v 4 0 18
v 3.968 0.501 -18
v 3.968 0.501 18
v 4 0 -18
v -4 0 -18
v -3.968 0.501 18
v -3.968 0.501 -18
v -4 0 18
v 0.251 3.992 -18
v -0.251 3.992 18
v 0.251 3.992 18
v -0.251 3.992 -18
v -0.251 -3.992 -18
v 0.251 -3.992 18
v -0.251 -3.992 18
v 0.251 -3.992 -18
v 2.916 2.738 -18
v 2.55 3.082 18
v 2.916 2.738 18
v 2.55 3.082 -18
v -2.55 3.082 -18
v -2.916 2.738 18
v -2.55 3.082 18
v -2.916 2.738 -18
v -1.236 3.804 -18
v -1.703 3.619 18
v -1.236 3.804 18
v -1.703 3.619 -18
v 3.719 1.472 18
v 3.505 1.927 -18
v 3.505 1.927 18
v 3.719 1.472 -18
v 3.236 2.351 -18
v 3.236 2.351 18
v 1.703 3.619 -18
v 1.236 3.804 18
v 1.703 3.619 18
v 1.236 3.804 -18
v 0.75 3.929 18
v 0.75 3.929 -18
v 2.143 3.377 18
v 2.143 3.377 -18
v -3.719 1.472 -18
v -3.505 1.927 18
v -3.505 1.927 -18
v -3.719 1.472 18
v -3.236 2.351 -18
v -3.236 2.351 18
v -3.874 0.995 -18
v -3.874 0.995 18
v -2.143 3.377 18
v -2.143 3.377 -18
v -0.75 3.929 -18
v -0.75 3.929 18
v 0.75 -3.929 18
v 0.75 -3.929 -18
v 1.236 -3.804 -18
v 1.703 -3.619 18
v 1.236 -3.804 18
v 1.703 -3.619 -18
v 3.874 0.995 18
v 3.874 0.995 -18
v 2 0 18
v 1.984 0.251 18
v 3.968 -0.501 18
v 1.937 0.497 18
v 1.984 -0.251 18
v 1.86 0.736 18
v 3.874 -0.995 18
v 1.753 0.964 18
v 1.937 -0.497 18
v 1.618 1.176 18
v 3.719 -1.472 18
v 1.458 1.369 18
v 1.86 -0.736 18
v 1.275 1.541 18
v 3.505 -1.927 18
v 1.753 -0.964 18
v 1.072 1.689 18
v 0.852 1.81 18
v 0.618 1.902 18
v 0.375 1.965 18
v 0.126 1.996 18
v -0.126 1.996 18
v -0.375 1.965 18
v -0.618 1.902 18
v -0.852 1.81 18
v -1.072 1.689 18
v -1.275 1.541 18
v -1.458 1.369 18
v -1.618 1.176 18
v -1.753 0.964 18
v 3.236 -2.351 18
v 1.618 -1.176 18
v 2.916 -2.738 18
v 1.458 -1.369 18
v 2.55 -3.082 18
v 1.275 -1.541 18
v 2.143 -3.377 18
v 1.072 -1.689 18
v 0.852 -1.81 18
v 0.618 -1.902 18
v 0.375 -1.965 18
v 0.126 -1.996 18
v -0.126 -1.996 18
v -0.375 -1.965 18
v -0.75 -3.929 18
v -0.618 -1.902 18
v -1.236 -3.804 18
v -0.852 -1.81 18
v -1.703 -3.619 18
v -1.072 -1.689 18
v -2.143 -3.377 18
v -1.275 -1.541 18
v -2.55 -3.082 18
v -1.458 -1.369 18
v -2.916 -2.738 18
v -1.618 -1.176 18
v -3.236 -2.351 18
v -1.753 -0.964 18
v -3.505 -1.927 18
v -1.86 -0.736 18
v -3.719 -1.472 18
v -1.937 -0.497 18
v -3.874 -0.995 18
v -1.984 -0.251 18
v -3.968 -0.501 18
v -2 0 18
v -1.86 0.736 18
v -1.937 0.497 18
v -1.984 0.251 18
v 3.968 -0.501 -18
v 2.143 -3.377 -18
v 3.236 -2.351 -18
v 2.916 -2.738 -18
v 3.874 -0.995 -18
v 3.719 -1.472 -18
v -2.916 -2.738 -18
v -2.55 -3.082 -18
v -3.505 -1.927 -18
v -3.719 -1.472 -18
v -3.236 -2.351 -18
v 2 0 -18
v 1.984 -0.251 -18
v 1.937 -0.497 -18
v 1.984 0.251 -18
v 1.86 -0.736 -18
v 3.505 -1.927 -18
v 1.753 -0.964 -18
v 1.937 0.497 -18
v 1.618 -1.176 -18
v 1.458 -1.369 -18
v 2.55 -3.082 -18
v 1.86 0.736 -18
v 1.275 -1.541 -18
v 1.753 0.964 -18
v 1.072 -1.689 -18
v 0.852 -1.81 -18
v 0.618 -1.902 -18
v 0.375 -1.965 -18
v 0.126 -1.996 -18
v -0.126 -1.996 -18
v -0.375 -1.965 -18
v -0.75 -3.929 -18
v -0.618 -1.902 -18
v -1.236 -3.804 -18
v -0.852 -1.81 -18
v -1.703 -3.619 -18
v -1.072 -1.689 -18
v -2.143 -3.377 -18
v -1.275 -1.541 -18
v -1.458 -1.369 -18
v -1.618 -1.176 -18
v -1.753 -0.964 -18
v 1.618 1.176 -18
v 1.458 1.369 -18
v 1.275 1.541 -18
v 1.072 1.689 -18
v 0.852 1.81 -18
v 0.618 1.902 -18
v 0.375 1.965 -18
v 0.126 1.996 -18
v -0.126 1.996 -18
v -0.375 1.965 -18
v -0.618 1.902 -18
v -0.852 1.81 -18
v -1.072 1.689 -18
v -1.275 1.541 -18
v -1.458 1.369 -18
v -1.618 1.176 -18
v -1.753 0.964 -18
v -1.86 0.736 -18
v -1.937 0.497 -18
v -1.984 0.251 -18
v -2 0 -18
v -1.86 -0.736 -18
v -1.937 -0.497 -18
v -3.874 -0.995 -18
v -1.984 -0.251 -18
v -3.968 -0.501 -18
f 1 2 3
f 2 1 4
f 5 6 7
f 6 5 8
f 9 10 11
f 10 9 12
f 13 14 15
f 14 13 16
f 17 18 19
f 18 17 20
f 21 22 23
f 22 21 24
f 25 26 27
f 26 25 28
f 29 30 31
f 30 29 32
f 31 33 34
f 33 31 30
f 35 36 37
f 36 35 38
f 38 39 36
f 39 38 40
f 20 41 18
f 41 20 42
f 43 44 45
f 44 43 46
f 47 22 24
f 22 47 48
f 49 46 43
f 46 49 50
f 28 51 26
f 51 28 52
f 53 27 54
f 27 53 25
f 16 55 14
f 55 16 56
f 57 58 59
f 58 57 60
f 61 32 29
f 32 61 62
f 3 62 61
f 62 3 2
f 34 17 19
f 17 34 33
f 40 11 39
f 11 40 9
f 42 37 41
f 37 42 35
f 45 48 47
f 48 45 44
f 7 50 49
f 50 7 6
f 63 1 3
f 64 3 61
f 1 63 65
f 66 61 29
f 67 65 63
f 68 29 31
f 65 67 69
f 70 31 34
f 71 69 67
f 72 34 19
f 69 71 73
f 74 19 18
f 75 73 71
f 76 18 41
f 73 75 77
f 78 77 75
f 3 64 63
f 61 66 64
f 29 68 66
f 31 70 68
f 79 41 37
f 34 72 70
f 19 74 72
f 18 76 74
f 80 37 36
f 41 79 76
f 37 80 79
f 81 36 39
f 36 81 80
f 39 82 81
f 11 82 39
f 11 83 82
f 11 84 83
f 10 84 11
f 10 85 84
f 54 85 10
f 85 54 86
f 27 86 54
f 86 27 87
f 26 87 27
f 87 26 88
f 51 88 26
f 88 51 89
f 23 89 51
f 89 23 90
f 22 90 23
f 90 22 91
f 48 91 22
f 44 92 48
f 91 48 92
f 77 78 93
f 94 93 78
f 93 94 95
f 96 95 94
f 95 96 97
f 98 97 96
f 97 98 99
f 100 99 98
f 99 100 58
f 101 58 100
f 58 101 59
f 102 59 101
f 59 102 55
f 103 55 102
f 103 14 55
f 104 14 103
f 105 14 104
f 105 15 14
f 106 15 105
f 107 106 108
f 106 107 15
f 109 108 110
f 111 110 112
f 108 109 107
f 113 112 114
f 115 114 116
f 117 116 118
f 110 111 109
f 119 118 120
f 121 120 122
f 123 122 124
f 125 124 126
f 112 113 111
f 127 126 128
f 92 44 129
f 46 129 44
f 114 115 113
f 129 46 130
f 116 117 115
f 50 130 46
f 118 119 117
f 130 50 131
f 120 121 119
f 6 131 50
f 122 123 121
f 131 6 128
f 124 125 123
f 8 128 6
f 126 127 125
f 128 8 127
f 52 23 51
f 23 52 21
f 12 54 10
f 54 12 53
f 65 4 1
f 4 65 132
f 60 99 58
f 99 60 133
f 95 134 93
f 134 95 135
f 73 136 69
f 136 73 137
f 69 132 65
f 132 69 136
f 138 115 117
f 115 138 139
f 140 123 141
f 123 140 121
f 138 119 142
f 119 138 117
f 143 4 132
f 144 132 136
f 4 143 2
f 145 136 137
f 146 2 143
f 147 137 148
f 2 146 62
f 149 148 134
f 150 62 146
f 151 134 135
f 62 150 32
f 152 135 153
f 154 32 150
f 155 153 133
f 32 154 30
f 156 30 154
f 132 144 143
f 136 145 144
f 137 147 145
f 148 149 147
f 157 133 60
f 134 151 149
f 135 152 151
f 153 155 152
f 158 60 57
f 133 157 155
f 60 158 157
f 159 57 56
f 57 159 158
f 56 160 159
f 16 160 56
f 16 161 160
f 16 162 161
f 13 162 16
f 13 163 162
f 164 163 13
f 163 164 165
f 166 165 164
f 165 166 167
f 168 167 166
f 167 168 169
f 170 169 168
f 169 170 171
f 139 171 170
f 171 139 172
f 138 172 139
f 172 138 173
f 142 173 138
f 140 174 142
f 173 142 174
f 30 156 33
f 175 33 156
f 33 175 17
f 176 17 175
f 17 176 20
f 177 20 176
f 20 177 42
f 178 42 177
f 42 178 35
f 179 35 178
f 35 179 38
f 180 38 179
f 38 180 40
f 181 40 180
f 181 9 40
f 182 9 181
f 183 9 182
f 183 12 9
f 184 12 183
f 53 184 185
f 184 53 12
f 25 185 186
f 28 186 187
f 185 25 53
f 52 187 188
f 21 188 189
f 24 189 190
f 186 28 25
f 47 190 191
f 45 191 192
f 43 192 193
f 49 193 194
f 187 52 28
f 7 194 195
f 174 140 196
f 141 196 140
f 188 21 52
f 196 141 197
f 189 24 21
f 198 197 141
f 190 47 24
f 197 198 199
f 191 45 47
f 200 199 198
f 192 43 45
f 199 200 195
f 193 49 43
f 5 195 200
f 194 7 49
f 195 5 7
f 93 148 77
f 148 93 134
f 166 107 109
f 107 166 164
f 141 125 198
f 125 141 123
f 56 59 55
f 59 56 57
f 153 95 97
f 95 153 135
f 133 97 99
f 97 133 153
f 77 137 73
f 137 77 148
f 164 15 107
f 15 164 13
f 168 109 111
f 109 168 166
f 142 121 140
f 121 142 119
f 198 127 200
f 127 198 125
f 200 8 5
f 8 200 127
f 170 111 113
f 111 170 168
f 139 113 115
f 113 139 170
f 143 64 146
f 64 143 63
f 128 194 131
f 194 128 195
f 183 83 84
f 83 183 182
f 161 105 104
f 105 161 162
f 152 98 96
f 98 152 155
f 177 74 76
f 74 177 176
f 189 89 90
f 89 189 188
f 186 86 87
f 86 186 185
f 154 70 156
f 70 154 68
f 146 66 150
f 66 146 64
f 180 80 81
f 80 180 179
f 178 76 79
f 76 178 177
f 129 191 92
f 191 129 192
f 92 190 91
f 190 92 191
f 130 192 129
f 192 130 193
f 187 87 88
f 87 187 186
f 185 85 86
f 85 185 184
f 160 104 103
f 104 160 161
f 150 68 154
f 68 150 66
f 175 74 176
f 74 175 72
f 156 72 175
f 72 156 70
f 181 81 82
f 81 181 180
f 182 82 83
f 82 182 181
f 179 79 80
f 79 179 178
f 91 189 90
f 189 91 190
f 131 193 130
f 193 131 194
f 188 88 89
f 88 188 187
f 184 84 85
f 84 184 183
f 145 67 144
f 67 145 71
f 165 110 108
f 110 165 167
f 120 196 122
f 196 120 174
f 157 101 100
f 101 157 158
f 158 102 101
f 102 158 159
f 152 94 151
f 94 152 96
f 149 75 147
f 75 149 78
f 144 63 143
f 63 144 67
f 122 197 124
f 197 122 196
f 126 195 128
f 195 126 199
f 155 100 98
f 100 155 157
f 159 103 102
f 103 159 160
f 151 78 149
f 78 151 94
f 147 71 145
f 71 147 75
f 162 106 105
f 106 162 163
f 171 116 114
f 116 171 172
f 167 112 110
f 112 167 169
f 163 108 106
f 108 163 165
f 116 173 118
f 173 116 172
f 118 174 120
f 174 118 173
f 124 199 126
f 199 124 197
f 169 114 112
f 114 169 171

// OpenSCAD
$fn = 50;


difference() {
	union() {
		translate(v = [0, 0, -18.0000000000]) {
			cylinder(h = 36, r = 4.0000000000);
		}
	}
	union() {
		translate(v = [0, 0, -100.0000000000]) {
			cylinder(h = 200, r = 2);
		}
	}
}
